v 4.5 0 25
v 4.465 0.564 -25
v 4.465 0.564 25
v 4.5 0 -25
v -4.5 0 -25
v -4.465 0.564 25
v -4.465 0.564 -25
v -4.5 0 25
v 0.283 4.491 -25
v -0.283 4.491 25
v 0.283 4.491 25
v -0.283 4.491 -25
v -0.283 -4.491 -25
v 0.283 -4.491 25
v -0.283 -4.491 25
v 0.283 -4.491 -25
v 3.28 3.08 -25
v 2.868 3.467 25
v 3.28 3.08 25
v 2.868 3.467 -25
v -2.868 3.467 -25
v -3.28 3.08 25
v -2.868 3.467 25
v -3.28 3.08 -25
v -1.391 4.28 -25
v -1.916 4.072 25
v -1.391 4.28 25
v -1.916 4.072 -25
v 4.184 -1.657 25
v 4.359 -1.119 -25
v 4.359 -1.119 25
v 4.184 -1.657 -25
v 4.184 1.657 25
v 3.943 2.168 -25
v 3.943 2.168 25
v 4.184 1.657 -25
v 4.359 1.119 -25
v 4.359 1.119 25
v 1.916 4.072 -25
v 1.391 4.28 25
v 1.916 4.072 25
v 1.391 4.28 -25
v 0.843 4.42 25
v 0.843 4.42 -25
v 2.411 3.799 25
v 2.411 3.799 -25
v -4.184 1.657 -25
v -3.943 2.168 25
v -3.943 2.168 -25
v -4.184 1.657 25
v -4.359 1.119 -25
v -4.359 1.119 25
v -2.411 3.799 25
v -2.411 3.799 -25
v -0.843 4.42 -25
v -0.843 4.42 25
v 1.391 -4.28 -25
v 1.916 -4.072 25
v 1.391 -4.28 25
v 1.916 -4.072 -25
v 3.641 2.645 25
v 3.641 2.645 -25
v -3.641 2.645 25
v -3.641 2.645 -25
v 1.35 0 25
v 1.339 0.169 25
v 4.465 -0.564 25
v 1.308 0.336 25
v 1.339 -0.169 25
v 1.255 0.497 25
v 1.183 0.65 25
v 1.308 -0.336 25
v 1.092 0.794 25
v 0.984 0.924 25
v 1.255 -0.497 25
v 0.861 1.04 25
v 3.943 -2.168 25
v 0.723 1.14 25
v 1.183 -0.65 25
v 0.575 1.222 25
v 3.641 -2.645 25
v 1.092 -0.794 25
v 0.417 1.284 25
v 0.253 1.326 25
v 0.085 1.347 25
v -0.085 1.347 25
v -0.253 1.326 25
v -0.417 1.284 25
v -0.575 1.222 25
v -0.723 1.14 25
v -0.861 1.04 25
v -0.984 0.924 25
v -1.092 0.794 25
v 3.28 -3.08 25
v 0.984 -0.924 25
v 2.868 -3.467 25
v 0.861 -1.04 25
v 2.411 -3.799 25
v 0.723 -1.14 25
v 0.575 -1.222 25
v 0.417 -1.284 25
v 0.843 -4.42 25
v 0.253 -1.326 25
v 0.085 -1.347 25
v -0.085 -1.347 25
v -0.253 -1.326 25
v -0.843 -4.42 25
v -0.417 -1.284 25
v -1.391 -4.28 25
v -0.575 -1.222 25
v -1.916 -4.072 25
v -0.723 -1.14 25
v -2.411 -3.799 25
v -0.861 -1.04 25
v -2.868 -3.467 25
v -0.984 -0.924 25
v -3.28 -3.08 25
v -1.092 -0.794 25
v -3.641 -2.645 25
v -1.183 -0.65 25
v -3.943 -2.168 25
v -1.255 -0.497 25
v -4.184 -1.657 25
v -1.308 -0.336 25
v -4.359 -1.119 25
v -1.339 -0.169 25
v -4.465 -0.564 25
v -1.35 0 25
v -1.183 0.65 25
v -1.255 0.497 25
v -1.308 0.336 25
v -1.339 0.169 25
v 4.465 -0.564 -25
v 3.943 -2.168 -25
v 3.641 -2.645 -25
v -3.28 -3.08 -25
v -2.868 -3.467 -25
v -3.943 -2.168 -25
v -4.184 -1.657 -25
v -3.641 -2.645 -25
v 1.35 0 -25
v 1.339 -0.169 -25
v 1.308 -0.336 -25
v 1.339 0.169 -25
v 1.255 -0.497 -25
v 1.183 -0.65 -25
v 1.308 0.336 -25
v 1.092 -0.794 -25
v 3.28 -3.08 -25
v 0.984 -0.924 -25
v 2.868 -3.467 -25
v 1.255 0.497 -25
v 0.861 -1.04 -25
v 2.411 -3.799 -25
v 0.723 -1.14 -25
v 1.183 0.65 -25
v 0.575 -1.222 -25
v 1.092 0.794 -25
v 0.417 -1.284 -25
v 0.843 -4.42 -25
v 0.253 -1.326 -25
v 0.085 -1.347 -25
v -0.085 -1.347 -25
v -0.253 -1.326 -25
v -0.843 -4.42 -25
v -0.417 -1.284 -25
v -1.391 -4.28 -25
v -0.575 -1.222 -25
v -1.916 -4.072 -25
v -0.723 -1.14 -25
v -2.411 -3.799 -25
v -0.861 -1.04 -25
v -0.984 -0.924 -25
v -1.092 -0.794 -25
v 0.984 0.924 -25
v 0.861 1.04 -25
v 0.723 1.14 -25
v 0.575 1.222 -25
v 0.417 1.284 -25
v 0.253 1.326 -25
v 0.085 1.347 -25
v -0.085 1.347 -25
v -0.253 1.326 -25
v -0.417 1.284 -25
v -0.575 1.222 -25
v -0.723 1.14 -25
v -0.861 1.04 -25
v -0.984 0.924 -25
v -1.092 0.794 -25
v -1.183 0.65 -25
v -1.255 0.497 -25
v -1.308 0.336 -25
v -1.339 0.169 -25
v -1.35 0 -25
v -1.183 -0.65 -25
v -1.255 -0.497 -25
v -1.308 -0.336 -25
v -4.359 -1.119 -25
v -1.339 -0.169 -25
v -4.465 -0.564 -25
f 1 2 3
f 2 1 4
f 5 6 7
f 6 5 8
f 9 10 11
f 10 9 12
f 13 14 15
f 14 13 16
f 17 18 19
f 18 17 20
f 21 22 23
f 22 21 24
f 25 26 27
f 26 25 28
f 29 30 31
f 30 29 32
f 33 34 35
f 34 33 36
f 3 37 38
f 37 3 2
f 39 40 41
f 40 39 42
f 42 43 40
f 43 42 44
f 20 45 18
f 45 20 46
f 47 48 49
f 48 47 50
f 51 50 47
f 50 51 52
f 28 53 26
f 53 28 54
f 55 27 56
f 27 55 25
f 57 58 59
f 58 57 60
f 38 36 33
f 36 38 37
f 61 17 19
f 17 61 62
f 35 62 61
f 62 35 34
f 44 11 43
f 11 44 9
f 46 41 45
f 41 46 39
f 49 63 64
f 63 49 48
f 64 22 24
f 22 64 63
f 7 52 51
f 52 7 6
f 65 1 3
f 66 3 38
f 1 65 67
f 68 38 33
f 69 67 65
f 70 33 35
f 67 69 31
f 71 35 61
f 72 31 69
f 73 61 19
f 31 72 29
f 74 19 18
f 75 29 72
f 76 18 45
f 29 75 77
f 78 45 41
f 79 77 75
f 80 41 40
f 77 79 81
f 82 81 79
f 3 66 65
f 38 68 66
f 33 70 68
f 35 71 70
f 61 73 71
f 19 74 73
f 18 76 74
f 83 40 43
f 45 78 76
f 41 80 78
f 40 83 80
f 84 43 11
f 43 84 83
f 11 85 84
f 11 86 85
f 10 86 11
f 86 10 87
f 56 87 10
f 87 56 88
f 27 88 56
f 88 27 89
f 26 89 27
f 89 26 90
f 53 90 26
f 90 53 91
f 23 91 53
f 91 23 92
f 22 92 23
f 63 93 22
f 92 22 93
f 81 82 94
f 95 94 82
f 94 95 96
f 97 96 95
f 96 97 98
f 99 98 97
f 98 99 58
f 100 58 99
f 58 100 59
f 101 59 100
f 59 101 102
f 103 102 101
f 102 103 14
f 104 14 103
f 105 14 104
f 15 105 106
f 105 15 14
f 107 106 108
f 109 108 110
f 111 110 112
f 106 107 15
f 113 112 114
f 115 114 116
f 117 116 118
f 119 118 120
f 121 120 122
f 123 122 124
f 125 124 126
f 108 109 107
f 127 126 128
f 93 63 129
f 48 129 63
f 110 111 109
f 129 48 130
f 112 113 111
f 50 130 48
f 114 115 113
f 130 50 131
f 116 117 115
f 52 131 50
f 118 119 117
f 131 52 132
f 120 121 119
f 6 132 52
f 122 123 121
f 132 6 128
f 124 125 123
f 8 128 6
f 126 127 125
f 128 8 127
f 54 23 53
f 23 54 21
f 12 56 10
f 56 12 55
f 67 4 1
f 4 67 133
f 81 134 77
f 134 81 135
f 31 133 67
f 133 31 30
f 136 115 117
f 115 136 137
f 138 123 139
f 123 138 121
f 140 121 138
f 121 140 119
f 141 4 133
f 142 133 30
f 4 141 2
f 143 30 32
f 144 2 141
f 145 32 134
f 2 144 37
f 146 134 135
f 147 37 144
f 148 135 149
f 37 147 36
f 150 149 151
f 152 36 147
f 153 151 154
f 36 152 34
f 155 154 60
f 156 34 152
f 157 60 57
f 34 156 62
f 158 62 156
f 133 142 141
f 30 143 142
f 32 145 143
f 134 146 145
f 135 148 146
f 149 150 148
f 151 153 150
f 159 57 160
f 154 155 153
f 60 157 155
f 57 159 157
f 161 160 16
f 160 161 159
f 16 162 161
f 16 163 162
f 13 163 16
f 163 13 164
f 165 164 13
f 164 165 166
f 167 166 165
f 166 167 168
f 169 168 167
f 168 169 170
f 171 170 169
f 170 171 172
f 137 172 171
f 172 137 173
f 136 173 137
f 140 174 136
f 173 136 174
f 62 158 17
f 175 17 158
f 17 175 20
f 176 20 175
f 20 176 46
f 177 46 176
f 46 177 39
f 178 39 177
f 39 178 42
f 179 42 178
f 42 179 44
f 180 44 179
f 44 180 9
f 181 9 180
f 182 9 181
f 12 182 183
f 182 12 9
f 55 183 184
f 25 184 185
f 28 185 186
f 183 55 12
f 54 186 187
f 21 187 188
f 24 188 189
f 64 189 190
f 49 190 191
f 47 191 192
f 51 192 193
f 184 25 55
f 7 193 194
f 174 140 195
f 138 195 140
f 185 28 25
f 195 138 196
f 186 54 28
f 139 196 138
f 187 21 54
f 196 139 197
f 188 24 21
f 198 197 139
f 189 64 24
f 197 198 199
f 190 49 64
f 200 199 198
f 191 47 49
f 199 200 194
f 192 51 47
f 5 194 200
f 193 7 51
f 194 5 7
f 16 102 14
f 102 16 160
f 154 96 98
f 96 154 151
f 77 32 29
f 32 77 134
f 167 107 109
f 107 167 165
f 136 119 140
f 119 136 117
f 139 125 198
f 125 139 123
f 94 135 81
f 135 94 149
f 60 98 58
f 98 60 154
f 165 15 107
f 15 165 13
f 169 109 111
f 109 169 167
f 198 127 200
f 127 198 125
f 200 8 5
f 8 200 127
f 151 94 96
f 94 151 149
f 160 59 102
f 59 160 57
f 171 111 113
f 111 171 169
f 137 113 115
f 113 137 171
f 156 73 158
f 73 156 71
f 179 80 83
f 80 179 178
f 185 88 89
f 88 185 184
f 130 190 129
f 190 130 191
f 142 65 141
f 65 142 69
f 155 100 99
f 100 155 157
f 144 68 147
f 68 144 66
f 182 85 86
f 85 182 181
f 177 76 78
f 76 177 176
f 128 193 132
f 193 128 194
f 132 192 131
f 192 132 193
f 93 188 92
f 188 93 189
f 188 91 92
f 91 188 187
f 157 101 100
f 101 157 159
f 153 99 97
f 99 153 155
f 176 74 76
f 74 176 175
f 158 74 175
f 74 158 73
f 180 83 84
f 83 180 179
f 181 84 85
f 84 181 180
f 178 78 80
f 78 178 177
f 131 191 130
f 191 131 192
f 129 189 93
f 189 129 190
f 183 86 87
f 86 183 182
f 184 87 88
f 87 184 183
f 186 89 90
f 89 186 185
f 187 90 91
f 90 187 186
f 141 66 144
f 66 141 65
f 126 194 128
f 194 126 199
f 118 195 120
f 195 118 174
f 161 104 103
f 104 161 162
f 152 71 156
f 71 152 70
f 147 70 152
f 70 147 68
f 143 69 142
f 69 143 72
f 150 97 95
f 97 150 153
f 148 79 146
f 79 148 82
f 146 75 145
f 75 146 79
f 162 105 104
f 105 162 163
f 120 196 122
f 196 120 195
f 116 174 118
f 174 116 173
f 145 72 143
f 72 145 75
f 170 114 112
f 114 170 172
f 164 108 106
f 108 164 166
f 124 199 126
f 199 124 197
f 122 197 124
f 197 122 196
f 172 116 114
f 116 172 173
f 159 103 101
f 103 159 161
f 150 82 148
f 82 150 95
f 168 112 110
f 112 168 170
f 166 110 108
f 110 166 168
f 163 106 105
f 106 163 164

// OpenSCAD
$fn = 50;


difference() {
	union() {
		translate(v = [0, 0, -25.0000000000]) {
			cylinder(h = 50, r = 4.5000000000);
		}
	}
	union() {
		translate(v = [0, 0, -100.0000000000]) {
			cylinder(h = 200, r = 1.3500000000);
		}
	}
}
